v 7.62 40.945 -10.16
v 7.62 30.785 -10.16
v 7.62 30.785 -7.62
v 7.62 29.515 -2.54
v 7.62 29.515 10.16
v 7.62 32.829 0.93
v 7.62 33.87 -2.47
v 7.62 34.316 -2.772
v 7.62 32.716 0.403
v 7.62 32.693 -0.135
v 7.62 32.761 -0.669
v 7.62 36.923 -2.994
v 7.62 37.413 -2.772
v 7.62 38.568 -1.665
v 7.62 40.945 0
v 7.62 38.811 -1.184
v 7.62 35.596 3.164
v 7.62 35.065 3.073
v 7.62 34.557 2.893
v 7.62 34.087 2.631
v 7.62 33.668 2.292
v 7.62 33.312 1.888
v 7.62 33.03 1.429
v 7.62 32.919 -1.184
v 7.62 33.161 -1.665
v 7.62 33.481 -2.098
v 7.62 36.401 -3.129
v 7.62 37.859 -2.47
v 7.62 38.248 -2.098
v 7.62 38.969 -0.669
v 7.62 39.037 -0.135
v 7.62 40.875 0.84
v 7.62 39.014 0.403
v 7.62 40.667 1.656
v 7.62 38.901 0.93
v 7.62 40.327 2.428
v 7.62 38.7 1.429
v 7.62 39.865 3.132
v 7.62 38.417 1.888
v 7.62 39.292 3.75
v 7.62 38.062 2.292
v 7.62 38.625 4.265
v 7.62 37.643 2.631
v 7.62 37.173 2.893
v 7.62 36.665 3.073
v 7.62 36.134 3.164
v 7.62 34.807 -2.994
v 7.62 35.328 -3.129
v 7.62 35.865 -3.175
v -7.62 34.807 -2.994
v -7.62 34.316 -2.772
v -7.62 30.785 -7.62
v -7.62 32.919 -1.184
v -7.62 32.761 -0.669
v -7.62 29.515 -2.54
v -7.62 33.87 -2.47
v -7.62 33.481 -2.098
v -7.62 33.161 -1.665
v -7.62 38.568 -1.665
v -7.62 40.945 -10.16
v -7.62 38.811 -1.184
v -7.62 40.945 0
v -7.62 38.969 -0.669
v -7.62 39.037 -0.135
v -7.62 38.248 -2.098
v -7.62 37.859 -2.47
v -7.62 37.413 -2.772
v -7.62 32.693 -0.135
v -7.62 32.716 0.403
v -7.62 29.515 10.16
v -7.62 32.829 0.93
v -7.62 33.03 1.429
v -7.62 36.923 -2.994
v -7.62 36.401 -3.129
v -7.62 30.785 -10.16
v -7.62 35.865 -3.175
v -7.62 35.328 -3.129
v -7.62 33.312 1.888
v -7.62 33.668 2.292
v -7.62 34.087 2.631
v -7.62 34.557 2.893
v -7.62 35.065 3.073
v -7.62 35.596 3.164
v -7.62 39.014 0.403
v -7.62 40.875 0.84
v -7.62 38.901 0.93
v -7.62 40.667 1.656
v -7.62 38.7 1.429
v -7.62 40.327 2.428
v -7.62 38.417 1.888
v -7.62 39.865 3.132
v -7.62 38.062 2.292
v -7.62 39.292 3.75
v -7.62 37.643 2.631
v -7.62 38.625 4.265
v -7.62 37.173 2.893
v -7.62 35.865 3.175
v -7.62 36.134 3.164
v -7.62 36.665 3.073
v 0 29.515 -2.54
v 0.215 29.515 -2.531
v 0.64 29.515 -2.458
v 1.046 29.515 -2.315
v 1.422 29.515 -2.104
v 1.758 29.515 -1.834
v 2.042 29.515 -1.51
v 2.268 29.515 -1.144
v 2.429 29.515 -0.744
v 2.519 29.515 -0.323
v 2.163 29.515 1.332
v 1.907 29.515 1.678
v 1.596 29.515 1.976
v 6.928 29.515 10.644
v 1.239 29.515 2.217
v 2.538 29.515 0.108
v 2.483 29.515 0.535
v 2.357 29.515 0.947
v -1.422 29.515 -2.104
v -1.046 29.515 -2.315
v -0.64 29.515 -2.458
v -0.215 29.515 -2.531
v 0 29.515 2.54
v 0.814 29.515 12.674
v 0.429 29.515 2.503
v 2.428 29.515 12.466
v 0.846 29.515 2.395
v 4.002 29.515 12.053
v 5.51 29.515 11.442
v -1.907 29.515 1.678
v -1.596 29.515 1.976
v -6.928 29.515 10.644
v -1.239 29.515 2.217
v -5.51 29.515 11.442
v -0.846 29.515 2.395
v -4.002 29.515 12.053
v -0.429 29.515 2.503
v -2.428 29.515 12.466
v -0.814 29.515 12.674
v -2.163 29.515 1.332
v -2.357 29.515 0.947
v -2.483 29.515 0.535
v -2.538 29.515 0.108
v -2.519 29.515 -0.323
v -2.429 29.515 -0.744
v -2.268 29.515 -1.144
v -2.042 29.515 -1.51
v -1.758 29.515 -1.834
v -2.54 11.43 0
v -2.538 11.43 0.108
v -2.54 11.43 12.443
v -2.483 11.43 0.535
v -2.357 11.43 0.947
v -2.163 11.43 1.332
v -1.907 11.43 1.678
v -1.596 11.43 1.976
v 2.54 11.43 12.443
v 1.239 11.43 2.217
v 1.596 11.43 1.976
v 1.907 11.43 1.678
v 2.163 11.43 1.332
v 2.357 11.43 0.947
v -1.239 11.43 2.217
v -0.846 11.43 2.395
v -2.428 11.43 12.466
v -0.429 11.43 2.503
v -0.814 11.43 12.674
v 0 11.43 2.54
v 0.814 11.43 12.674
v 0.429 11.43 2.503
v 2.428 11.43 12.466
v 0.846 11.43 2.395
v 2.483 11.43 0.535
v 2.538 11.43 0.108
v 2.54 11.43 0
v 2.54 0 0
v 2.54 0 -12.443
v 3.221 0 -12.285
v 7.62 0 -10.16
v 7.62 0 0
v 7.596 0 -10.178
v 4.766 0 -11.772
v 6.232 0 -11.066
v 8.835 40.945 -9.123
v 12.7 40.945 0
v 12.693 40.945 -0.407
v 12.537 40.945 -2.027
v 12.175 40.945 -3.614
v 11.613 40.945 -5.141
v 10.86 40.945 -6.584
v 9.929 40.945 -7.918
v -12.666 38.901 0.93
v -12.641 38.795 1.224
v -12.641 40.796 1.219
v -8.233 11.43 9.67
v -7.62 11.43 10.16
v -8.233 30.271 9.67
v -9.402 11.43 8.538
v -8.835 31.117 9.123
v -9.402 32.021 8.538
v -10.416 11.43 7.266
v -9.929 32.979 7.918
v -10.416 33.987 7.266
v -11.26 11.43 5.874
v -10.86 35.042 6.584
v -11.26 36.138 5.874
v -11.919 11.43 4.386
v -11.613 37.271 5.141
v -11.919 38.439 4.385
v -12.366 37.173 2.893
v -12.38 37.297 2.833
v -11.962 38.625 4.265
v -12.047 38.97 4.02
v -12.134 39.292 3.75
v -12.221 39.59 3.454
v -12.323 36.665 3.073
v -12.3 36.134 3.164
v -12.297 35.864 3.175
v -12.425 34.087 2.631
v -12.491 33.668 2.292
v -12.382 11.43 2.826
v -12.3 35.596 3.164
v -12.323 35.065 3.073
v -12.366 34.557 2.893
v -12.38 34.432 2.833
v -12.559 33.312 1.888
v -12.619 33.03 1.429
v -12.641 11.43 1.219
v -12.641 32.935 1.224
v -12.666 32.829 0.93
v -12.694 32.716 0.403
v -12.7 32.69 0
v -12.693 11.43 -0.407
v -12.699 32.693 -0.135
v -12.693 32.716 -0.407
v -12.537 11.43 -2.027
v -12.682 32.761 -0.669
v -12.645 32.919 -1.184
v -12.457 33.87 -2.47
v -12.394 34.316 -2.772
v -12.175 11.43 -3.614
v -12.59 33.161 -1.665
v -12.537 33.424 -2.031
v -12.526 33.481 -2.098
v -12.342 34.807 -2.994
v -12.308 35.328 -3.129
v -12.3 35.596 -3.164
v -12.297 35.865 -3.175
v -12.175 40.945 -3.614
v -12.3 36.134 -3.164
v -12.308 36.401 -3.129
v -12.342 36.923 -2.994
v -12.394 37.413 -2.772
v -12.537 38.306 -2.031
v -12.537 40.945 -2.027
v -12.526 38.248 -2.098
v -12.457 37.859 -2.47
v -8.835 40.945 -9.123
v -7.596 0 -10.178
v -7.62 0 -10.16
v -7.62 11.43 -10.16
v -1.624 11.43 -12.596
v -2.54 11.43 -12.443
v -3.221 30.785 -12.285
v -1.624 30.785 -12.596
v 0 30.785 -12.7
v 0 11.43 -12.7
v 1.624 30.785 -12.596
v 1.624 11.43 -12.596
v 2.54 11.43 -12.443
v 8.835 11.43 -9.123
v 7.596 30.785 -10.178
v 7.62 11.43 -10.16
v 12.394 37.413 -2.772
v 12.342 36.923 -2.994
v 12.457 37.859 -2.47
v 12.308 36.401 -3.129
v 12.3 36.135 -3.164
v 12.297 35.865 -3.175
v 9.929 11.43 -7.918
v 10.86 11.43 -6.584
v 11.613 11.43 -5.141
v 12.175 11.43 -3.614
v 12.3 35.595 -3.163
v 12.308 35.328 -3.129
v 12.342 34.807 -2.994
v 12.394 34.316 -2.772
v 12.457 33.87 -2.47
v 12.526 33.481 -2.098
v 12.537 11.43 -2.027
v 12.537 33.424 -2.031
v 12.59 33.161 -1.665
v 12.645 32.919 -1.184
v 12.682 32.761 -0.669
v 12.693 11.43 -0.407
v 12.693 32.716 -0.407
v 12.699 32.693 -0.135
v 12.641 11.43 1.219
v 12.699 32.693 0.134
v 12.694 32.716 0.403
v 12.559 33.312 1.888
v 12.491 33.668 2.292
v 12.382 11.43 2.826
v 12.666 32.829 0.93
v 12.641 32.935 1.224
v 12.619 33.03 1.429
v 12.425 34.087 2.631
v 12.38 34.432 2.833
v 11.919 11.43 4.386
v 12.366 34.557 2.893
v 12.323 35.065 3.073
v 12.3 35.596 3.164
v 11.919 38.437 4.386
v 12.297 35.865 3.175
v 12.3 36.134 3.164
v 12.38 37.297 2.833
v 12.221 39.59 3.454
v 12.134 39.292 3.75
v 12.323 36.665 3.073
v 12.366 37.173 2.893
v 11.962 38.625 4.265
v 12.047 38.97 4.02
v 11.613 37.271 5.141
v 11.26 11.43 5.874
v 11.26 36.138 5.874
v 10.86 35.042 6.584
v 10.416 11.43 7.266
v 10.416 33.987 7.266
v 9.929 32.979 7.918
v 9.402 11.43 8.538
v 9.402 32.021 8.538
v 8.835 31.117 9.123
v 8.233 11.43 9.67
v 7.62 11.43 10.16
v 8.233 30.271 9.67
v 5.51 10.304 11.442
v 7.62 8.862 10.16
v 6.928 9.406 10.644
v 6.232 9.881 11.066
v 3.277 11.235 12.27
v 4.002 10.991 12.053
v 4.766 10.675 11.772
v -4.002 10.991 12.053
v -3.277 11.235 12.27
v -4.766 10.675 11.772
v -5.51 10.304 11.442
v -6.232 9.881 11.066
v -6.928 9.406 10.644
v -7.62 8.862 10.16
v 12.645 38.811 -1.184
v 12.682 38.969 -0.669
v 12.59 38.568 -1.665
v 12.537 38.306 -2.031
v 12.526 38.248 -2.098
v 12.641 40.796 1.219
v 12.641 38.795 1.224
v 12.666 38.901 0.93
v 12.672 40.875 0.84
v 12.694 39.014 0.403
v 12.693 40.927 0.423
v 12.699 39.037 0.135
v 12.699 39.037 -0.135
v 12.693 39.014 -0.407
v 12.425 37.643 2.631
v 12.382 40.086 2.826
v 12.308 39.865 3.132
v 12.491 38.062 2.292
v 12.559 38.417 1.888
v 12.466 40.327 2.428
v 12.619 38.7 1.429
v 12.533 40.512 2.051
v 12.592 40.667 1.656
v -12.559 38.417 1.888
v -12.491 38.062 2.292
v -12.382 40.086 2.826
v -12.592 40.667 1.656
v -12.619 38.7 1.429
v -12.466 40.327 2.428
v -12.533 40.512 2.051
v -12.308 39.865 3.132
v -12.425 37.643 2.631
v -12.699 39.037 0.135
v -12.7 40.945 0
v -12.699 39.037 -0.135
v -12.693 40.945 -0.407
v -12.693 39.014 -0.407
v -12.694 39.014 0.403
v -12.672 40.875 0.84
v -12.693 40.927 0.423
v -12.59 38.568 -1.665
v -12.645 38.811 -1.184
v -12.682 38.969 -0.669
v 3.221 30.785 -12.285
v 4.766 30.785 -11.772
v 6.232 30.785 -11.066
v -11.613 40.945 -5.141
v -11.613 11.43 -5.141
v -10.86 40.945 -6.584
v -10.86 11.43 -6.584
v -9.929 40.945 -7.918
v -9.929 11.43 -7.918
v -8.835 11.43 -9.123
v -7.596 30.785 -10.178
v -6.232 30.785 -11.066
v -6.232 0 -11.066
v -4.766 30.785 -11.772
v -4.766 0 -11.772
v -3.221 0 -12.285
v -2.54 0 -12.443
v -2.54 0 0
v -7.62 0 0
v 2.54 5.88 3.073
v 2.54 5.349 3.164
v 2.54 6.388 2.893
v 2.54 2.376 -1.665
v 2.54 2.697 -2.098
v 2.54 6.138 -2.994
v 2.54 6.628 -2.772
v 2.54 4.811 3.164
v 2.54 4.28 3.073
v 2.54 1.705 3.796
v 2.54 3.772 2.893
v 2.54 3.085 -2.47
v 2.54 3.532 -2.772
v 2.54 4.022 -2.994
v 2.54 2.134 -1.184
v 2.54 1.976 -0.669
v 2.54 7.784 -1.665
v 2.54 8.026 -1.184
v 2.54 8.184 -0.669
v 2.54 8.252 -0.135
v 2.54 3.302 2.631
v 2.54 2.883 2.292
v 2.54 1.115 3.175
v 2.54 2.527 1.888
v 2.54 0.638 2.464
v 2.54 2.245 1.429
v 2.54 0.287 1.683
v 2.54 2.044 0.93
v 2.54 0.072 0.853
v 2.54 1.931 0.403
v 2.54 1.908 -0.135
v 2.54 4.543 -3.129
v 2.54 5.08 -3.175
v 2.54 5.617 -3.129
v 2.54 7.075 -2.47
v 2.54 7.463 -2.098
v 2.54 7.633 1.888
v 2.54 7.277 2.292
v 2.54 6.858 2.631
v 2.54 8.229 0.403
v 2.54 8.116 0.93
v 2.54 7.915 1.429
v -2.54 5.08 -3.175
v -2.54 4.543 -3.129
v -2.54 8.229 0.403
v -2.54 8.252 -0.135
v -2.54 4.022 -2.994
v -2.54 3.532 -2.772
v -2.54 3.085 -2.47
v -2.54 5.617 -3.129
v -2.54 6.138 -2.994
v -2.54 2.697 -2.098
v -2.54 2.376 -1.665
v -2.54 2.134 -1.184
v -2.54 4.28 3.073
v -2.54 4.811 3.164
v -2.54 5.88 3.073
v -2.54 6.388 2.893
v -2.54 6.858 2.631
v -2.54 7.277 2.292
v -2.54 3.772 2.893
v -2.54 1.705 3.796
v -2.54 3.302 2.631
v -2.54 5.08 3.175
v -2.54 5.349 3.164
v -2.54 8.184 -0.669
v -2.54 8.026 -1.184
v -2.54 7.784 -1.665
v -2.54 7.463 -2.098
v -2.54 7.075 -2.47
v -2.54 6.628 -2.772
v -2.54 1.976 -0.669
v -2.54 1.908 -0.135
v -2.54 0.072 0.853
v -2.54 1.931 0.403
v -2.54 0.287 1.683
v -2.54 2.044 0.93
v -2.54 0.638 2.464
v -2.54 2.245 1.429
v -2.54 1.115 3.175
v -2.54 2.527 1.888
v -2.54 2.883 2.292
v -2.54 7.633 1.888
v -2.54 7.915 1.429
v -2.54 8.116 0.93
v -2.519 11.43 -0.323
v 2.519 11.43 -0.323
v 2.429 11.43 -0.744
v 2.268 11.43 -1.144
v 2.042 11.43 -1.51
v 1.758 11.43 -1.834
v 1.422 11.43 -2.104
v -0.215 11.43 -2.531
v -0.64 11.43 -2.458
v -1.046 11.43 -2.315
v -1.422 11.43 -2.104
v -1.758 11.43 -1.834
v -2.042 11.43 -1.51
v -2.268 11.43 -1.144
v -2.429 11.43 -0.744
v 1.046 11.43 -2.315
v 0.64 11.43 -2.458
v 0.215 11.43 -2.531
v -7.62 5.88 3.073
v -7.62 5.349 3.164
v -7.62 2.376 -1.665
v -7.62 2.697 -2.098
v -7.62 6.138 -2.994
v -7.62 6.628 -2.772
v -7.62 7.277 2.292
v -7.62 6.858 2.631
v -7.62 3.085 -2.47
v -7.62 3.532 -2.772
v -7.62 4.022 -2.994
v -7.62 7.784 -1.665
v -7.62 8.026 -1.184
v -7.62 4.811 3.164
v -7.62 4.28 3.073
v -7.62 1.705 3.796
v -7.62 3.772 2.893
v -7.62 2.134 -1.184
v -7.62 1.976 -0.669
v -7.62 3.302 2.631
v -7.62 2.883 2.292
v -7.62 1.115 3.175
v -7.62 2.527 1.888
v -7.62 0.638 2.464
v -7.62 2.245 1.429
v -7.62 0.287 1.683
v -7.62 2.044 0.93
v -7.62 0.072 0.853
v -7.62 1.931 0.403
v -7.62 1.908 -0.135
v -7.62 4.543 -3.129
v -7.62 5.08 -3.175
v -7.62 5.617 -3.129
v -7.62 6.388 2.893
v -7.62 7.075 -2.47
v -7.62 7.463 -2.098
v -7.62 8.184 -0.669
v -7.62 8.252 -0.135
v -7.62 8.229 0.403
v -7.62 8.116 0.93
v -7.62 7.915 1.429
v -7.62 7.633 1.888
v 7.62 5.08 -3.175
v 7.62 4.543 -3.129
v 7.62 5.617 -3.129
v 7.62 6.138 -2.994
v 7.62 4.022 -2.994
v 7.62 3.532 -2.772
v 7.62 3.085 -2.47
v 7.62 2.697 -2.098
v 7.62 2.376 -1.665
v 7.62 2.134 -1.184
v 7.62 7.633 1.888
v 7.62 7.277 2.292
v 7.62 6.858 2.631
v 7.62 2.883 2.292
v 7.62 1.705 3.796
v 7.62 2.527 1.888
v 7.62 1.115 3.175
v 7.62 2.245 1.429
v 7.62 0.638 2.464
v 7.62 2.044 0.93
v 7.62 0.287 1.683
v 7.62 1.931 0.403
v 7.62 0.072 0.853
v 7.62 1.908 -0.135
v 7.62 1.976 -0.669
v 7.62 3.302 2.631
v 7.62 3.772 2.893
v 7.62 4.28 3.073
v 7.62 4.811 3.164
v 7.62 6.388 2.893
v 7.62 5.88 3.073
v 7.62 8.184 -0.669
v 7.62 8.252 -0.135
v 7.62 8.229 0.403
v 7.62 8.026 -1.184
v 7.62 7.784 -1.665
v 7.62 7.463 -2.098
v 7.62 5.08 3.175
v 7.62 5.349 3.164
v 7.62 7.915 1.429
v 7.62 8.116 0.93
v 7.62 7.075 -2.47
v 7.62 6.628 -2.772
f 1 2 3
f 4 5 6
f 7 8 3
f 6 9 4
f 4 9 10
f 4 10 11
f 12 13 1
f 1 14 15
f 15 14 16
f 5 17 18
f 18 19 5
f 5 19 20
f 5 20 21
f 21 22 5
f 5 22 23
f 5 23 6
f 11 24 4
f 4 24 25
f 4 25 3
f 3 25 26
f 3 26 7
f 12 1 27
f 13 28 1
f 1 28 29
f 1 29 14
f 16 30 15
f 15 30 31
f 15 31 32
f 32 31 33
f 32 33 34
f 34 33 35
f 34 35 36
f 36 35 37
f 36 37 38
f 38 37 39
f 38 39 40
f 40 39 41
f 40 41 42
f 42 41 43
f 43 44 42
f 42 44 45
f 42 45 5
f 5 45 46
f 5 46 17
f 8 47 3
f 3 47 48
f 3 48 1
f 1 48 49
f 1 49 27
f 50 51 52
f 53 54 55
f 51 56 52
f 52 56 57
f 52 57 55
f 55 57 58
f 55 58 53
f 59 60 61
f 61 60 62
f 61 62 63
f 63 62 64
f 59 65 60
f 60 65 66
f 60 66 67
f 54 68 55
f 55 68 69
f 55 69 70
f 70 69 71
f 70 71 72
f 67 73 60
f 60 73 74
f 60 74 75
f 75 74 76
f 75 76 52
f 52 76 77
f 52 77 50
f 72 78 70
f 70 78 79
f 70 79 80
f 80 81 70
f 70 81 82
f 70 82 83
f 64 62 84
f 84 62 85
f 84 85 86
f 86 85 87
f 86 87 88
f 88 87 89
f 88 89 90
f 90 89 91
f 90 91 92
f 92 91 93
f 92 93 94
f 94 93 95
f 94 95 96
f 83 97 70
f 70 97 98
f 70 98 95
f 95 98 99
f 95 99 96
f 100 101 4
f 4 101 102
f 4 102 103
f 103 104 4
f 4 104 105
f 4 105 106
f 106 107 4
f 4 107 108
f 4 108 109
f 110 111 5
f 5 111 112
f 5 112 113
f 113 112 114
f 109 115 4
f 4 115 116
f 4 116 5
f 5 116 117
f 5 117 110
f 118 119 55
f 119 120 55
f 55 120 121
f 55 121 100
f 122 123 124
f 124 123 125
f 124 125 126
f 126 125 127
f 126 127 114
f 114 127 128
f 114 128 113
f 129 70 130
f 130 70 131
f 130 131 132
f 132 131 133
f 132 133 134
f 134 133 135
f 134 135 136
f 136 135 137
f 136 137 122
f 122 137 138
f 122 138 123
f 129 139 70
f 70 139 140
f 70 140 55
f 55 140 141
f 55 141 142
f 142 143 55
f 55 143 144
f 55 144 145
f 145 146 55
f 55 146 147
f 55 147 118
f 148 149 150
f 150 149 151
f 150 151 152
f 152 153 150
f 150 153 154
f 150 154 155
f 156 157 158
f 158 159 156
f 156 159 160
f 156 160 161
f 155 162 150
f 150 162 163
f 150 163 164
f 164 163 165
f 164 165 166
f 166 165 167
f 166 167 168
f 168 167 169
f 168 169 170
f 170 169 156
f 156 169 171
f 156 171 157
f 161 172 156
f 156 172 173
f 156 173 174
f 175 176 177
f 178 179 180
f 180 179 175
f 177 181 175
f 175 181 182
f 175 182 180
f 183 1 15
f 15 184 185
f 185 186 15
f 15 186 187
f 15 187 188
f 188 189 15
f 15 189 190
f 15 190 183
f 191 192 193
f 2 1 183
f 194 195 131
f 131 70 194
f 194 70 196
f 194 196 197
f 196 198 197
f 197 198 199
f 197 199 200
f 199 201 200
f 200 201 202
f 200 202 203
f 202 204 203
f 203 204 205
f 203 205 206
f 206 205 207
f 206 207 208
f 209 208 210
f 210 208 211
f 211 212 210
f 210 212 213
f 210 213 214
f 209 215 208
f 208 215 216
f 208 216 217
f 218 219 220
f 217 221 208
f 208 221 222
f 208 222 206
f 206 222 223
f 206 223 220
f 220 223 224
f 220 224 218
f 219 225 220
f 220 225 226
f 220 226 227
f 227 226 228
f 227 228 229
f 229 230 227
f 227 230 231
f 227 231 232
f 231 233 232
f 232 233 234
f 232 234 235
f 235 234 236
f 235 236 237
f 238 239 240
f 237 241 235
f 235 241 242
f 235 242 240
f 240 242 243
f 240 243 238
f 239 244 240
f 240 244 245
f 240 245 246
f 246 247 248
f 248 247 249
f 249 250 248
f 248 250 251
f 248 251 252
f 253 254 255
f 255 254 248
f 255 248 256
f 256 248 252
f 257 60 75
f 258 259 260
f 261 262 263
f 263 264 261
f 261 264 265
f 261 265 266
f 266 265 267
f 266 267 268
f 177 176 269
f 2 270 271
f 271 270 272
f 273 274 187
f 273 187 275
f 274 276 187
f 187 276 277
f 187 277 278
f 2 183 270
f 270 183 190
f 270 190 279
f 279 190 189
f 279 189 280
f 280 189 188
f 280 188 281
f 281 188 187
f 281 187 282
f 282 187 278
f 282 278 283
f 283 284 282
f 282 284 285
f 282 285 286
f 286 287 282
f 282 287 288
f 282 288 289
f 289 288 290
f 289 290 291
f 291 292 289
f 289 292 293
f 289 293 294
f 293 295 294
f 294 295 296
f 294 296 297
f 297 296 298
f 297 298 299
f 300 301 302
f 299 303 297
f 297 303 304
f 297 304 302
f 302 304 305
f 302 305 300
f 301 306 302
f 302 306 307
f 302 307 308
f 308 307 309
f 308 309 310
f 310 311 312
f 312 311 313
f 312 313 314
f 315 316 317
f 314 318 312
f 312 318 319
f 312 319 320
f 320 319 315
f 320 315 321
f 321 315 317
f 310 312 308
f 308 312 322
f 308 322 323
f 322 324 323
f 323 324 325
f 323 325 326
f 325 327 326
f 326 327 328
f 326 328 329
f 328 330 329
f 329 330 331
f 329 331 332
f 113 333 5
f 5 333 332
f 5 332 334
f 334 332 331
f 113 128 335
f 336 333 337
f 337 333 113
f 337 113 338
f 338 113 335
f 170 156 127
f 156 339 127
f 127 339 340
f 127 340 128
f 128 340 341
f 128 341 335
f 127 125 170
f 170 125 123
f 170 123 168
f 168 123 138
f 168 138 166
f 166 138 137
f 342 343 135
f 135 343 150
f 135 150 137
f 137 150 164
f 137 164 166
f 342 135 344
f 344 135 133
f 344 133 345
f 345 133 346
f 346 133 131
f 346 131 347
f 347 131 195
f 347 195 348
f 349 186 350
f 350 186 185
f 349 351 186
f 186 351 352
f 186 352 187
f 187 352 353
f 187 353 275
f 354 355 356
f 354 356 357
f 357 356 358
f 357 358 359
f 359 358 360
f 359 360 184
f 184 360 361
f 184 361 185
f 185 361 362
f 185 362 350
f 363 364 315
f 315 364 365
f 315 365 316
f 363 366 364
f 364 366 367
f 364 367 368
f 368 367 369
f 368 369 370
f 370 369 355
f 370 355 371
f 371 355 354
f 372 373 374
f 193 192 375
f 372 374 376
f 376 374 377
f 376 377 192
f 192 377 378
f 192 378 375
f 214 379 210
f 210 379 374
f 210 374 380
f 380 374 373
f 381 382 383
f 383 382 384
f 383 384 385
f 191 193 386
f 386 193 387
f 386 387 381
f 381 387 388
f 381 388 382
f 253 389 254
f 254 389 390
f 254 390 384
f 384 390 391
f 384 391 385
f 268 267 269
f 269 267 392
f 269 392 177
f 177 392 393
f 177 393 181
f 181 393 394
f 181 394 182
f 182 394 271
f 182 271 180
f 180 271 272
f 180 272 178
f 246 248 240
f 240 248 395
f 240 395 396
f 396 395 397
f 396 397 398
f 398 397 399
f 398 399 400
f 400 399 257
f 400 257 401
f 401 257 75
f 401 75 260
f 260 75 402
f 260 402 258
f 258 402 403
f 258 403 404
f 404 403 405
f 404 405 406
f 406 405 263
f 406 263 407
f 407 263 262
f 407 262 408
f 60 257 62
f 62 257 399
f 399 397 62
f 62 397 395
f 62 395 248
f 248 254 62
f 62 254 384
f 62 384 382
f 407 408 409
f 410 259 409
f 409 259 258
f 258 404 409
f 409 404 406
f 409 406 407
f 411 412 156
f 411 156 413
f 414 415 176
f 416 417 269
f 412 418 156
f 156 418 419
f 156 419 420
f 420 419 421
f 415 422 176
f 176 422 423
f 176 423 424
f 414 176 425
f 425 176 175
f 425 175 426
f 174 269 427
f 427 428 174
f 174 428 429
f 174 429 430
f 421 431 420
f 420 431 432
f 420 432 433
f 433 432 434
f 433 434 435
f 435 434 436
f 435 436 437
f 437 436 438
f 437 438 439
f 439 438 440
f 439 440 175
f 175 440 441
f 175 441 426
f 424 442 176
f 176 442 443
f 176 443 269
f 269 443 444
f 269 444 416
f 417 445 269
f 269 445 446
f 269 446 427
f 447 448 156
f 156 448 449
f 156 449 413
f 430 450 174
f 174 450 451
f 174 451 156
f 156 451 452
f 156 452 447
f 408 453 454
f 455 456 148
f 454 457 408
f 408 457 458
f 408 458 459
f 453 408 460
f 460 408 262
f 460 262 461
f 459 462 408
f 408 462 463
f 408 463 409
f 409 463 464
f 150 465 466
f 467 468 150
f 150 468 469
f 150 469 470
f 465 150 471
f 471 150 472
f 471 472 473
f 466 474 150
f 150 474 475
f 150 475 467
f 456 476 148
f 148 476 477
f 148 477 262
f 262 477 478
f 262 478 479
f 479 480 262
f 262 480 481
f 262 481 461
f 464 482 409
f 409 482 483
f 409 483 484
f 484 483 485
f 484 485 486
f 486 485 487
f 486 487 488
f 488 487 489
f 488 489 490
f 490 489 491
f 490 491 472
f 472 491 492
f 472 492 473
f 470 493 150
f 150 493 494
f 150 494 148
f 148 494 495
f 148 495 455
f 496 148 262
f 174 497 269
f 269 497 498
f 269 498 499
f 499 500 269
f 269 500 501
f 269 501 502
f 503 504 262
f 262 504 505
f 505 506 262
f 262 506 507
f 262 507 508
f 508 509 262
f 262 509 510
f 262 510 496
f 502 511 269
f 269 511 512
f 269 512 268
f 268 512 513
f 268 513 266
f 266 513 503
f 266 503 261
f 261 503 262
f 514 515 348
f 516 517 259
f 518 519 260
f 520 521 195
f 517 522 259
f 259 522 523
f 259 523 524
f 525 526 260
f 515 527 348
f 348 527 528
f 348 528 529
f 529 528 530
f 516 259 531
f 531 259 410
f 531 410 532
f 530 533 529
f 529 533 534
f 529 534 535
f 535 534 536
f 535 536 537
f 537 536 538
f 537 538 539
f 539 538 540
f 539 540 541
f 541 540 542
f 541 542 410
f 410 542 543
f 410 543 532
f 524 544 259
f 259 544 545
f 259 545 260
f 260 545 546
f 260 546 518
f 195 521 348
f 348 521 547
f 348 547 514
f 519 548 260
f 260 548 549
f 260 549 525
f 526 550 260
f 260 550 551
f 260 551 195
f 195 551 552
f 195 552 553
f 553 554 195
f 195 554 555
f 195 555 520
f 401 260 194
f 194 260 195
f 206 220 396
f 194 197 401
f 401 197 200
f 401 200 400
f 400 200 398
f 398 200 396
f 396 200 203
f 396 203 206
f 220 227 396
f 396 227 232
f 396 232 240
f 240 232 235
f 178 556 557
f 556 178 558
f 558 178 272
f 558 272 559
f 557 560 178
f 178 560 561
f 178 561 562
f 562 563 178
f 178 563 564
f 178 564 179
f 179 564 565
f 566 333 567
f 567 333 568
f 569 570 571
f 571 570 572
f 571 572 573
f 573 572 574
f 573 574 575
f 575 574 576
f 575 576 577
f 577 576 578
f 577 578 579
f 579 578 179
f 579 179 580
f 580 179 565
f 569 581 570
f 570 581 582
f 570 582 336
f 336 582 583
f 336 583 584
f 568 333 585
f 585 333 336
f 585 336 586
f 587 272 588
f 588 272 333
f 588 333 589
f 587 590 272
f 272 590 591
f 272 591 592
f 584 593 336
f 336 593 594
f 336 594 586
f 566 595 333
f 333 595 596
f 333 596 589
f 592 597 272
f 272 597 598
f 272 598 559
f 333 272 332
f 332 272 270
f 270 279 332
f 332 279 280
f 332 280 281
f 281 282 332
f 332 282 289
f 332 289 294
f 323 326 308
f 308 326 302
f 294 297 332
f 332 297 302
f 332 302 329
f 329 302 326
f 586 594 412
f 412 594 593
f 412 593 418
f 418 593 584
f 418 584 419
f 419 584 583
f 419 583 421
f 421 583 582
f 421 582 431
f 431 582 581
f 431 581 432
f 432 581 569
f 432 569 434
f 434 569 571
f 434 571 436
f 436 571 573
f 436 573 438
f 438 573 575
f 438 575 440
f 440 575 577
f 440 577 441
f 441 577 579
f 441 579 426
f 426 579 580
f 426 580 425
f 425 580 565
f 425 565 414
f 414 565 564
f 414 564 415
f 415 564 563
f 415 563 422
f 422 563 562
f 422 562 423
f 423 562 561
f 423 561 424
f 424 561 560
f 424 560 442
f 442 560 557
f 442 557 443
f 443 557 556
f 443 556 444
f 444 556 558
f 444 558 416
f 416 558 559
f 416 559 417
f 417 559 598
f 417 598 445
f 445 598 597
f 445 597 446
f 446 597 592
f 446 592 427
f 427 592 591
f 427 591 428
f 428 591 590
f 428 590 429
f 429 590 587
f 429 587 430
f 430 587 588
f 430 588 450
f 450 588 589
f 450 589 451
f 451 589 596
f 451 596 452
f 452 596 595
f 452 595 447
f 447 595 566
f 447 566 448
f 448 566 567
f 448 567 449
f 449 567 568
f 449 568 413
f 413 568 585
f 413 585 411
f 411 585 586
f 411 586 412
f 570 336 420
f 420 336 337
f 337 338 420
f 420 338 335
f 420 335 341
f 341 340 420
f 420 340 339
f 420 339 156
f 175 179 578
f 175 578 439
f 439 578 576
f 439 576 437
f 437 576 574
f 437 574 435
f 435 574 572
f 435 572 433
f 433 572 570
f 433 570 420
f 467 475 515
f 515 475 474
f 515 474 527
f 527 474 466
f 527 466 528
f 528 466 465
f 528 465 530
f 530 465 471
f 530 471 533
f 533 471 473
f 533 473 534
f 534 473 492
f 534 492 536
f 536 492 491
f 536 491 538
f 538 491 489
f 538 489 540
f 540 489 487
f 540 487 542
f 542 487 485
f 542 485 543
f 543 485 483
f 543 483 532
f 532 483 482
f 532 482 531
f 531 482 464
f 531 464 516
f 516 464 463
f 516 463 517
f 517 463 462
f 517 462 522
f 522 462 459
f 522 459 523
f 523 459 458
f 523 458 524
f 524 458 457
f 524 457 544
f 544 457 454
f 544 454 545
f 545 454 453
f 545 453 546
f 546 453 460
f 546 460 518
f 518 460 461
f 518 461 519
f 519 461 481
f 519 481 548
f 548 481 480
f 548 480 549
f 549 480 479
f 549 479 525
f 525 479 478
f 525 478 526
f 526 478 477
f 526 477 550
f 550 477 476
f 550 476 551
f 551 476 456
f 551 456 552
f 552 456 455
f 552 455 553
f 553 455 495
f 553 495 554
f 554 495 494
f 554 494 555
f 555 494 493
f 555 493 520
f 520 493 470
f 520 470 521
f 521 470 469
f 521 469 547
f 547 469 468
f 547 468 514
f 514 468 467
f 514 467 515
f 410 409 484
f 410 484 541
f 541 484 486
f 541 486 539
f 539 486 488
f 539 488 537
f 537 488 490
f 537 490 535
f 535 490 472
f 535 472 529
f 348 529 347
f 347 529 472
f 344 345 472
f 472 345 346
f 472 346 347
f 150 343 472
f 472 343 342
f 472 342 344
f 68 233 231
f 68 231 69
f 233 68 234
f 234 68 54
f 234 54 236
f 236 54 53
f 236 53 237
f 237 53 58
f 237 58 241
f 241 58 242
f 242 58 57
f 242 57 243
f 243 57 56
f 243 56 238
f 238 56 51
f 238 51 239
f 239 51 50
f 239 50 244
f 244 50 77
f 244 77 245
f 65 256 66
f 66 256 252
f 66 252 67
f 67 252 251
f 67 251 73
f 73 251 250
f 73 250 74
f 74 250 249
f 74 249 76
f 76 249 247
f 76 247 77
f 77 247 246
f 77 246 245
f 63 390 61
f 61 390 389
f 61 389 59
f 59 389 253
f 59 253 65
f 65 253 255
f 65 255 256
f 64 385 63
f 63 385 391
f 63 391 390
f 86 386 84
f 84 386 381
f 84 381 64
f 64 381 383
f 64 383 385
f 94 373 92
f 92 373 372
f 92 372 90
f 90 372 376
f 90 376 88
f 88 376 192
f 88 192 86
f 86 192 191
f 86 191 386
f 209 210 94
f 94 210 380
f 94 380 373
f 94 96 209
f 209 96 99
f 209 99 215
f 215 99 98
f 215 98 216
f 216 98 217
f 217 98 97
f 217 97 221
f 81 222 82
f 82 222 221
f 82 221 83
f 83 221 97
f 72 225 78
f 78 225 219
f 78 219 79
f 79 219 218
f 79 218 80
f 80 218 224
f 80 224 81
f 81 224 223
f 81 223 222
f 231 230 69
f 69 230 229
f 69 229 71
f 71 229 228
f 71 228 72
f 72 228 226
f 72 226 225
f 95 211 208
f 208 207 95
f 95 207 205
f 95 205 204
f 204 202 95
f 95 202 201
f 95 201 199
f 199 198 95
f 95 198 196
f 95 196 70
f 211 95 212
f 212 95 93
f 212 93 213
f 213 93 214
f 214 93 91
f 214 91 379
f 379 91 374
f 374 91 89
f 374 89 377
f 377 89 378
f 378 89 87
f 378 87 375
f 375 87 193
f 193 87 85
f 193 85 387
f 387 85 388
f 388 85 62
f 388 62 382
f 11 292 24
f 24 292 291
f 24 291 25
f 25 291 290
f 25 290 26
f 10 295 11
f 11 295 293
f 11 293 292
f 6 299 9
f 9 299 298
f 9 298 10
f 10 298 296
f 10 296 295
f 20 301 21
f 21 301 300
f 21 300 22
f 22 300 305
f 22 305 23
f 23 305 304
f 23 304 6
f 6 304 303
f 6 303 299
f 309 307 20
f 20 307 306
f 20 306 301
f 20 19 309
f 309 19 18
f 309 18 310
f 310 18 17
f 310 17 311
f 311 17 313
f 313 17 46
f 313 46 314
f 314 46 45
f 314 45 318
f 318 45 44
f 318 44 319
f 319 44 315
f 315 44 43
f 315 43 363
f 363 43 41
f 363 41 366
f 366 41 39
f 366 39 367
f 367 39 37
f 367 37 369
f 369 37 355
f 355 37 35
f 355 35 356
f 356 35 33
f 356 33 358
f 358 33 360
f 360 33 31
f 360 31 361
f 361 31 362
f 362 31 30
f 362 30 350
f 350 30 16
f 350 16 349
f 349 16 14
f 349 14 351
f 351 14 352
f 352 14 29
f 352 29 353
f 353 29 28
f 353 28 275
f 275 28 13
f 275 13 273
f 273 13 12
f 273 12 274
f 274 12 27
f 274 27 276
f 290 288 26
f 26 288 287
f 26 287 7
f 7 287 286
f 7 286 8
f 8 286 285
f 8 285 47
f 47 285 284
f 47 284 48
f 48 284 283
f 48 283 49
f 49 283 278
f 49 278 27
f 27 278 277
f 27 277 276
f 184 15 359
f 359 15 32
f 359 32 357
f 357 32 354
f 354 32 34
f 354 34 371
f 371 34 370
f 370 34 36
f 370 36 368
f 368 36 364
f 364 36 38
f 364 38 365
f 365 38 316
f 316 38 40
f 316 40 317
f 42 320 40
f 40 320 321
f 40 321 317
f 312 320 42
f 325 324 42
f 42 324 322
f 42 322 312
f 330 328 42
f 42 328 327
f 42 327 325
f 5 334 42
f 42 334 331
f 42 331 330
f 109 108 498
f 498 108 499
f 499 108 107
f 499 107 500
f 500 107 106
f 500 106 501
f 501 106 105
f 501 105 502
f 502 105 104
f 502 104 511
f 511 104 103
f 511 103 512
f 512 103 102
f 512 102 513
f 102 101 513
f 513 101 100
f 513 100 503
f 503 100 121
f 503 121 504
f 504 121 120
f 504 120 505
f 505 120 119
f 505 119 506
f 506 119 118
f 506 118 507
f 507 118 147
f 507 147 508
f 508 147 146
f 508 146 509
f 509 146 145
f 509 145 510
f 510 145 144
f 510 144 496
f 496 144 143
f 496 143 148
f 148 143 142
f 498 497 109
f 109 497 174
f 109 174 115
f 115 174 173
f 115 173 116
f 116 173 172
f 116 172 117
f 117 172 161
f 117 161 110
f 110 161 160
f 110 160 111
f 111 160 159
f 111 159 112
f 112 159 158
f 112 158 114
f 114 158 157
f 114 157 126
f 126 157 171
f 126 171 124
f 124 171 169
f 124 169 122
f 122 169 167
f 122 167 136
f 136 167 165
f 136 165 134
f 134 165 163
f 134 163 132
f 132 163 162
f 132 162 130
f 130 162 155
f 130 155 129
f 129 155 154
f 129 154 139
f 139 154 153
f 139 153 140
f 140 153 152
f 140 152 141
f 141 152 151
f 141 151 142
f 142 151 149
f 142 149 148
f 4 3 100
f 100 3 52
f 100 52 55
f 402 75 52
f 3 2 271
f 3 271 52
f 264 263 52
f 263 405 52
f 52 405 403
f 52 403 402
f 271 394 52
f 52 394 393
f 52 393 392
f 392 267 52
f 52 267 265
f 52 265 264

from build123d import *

# Parameters (mm, degrees)
SKETCH1_R               = 12.7
BOSS_EXTRUDE1_DEPTH     = 40.9448
CUT_EXTRUDE1_START      = -11.43
CUT_EXTRUDE1_DEPTH      = 11.43
CUT_EXTRUDE2_DEPTH      = 11.43
CUT_EXTRUDE3_DEPTH      = 48.441216753
CUT_EXTRUDE3_DEPTH_BACK = 48.441216753
SKETCH4_R               = 3.175
SKETCH5_R               = 2.54
CUT_EXTRUDE4_DEPTH      = 35.550013459
BOSS_EXTRUDE2_REACH     = 49.441
BOSS_EXTRUDE3_DEPTH     = 1.27


with BuildPart() as part:
    # Sketch1 → Boss-Extrude1 (new body)
    with BuildSketch(Plane(origin=(0, 0, 0), x_dir=(1, 0, 0), z_dir=(0, 1, 0))):
        with Locations(Location((0, 0, 0), (0, 0, 270))):
            Circle(SKETCH1_R)
    extrude(amount=BOSS_EXTRUDE1_DEPTH)

    # Sketch2 → Cut-Extrude1 (cut)
    with BuildSketch(Plane(origin=(0, 40.9448, 0), x_dir=(1, 0, 0), z_dir=(0, 1, 0)).offset(CUT_EXTRUDE1_START)):
        with BuildLine():
            Line((7.62, 10.16), (7.62, -10.16))
            ThreePointArc((7.62, -10.16), (0, -12.7), (-7.62, -10.16))
            Line((-7.62, -10.16), (-7.62, 10.16))
            ThreePointArc((-7.62, 10.16), (0, 12.7), (7.62, 10.16))
        make_face()
    extrude(amount=CUT_EXTRUDE1_DEPTH, mode=Mode.SUBTRACT)

    # Sketch3 → Cut-Extrude2 (cut)
    with BuildSketch(Plane.XZ):
        with BuildLine():
            Line((-2.54, 12.443407893), (-2.54, -12.443407893))
            ThreePointArc((-2.54, -12.443407893), (0, -12.7), (2.54, -12.443407893))
            Line((2.54, -12.443407893), (2.54, 12.443407893))
            ThreePointArc((2.54, 12.443407893), (0, 12.7), (-2.54, 12.443407893))
        make_face()
        with BuildLine():
            Line((-7.62, 10.16), (-7.62, -10.16))
            ThreePointArc((-7.62, -10.16), (-12.7, 0), (-7.62, 10.16))
        make_face()
        with BuildLine():
            Line((7.62, 10.16), (7.62, -10.16))
            ThreePointArc((7.62, -10.16), (12.7, 0), (7.62, 10.16))
        make_face()
    extrude(amount=-CUT_EXTRUDE2_DEPTH, mode=Mode.SUBTRACT)

    # Sketch4 → Cut-Extrude3 (cut, two sides: drawn at the far end of the back side and taken through both)
    with BuildSketch(Plane(origin=(-7.62, 0, 0), x_dir=(0, 0, -1), z_dir=(1, 0, 0)).offset(-CUT_EXTRUDE3_DEPTH_BACK)):
        with Locations(Location((0, 35.8648, 0), (0, 0, 270))):
            Circle(SKETCH4_R)
        with Locations((0, 5.08)):
            Circle(SKETCH4_R)
        with BuildLine():
            Line((0, 40.9448), (-10.16, 40.9448))
            Line((-10.16, 40.9448), (-10.16, 29.5148))
            Line((-10.16, 29.5148), (-4.264917923, 38.624668677))
            ThreePointArc((-4.264917923, 38.624668677), (-2.427577715, 40.327228312), (0, 40.9448))
        make_face()
        with BuildLine():
            Line((0, 0), (-12.443407893, 0))
            Line((-12.443407893, 0), (-12.443407893, 11.43))
            Line((-12.443407893, 11.43), (-3.796422114, 1.704562379))
            ThreePointArc((-3.796422114, 1.704562379), (-2.080766311, 0.445691901), (0, 0))
        make_face()
    extrude(amount=CUT_EXTRUDE3_DEPTH + CUT_EXTRUDE3_DEPTH_BACK, mode=Mode.SUBTRACT)

    # Sketch5 → Cut-Extrude4 (cut, through all)
    with BuildSketch(Plane(origin=(0, 29.5148, 0), x_dir=(1, 0, 0), z_dir=(0, 1, 0))):
        with Locations(Location((0, 0, 0), (0, 0, 270))):
            Circle(SKETCH5_R)
    extrude(amount=-CUT_EXTRUDE4_DEPTH, mode=Mode.SUBTRACT)

    # Boss-Extrude2: up to this face of the body (flat: up to its plane)
    boss_extrude2_end = Plane(part.part.faces().sort_by_distance((7.62, 29.747941009, 0))[0])
    # Sketch6 → Boss-Extrude2 (add, up to the picked face)
    with BuildSketch(Plane(origin=(-7.62, 0, 0), x_dir=(0, 0, -1), z_dir=(1, 0, 0)), mode=Mode.PRIVATE) as boss_extrude2_sk1:
        Polygon((2.54, 29.5148), (10.16, 29.5148), (10.16, 30.7848), (7.62, 30.7848), align=None)
    boss_extrude2_tool1 = split(extrude(boss_extrude2_sk1.sketch, amount=BOSS_EXTRUDE2_REACH, mode=Mode.PRIVATE), bisect_by=boss_extrude2_end, keep=Keep.BOTH, mode=Mode.PRIVATE)
    add(boss_extrude2_tool1.solids().sort_by(Axis((-7.62, 30.043967, -7.408333), (1, 0, 0)))[0])

    # Sketch7 → Boss-Extrude3 (add)
    with BuildSketch(Plane(origin=(0, 29.5148, 0), x_dir=(1, 0, 0), z_dir=(0, 1, 0))):
        with BuildLine():
            Line((-7.62, 10.16), (7.62, 10.16))
            ThreePointArc((7.62, 10.16), (0, 12.7), (-7.62, 10.16))
        make_face()
    extrude(amount=BOSS_EXTRUDE3_DEPTH)


solid = part.part
